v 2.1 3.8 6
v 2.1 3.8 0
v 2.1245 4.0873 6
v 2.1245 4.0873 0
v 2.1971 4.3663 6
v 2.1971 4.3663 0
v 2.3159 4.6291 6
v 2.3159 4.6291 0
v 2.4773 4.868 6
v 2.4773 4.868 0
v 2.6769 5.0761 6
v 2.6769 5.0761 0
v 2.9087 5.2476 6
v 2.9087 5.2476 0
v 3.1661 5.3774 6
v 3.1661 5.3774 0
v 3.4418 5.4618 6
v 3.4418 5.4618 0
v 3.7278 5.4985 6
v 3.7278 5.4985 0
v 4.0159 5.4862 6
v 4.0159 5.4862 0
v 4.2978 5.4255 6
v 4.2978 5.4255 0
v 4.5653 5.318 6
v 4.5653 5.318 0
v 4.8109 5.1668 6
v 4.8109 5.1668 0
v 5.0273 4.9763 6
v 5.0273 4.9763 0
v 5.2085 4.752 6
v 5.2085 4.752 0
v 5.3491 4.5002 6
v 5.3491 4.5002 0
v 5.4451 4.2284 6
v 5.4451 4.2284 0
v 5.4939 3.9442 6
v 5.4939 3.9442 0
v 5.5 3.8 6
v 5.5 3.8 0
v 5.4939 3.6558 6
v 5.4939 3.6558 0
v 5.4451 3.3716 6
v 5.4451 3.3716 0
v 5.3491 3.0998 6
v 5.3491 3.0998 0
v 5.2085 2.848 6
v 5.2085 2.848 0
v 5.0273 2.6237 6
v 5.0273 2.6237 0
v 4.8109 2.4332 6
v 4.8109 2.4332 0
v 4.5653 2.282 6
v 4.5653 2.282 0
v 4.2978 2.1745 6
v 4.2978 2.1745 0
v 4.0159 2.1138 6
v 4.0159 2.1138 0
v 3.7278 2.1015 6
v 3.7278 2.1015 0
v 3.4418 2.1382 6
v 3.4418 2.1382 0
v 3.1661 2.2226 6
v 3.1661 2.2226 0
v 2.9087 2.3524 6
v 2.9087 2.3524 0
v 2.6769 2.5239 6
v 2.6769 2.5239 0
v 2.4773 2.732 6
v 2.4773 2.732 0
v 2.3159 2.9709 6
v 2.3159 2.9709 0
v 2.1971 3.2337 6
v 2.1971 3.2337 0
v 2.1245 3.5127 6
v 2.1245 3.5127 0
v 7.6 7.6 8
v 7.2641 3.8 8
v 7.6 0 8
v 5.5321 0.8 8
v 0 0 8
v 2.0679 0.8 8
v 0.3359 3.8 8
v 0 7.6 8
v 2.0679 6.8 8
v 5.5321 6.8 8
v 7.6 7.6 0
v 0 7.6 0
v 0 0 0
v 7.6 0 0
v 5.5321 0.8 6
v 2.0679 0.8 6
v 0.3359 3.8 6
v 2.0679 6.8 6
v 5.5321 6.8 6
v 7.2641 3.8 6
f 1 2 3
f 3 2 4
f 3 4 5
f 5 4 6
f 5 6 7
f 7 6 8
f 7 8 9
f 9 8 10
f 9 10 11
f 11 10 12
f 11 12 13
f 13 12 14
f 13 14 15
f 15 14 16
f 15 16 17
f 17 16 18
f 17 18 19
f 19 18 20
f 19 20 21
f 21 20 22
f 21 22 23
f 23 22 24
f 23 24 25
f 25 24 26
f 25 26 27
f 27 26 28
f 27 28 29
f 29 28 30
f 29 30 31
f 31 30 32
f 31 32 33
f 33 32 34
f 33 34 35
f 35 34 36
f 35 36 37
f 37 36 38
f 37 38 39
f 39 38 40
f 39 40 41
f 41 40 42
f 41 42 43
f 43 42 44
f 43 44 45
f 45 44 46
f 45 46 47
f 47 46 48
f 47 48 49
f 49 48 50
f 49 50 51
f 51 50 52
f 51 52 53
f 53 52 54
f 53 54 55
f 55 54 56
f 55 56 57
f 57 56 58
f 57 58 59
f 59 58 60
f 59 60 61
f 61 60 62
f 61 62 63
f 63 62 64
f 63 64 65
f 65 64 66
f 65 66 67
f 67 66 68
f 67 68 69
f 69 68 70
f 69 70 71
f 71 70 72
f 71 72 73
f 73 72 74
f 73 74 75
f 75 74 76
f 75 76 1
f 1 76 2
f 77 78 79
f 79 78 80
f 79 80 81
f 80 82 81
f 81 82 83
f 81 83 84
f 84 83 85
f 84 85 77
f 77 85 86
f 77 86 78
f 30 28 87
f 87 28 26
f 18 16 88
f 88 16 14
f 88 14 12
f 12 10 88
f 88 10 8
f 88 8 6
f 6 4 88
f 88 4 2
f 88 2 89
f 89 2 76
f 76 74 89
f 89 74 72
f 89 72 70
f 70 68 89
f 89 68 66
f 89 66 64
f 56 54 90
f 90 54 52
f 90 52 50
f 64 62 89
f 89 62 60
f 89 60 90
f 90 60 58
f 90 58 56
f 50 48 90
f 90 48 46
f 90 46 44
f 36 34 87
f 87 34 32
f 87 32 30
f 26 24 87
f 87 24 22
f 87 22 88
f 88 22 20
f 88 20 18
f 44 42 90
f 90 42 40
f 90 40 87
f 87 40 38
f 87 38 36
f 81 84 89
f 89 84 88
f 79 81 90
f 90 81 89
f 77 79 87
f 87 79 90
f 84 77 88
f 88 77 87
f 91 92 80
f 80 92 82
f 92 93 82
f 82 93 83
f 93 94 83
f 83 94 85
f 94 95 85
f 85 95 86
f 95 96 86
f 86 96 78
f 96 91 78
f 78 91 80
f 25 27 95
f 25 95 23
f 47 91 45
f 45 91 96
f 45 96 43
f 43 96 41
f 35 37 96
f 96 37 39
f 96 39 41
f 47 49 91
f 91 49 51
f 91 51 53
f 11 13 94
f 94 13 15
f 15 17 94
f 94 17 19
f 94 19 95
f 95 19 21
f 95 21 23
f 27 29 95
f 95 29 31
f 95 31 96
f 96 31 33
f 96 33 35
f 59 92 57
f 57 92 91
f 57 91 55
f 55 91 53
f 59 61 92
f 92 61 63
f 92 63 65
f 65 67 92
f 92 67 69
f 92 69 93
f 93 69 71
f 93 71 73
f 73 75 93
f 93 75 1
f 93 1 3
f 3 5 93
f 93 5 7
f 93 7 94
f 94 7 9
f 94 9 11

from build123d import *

# Parameters (mm, degrees)
SKETCH1_W           = 7.6
SKETCH1_H           = 7.6
SKETCH1_R           = 1.7
BOSS_EXTRUDE1_DEPTH = 8
CUT_EXTRUDE1_DEPTH  = 2


with BuildPart() as part:
    # Sketch1 → Boss-Extrude1 (new body)
    with BuildSketch(Plane.XY):
        with Locations((3.8, 3.8)):
            Rectangle(SKETCH1_W, SKETCH1_H)
        with Locations((3.8, 3.8)):
            Circle(SKETCH1_R, mode=Mode.SUBTRACT)
    extrude(amount=BOSS_EXTRUDE1_DEPTH)

    # Sketch3 → Cut-Extrude1 (cut)
    with BuildSketch(Plane.XY.offset(8)):
        Polygon((5.532050808, 0.8), (7.264101615, 3.8), (5.532050808, 6.8), (2.067949192, 6.8), (0.335898385, 3.8), (2.067949192, 0.8), align=None)
    extrude(amount=-CUT_EXTRUDE1_DEPTH, mode=Mode.SUBTRACT)


solid = part.part
